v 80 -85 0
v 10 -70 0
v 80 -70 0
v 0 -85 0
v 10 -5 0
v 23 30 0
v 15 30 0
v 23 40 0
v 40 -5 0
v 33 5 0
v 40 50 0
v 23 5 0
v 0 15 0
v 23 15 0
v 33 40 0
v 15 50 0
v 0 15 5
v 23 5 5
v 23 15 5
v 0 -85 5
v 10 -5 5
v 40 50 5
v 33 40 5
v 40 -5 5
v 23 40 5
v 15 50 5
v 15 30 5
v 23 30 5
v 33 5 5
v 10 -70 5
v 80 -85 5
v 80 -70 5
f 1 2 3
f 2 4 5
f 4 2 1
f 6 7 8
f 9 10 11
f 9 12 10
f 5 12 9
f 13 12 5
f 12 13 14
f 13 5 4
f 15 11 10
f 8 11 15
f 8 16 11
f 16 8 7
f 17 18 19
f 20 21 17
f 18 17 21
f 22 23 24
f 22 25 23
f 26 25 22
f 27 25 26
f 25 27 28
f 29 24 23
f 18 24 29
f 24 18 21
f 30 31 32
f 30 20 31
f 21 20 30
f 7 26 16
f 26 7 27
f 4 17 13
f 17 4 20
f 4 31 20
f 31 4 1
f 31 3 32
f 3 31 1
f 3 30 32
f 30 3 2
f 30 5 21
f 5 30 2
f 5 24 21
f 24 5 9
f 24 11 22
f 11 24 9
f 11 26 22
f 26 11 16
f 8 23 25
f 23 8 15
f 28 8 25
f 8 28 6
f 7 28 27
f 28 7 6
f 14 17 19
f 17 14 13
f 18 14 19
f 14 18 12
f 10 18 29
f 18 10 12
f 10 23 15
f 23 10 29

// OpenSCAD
espessura_prateleira = 15; // milimetros

espessura_gancho = 5;
altura_gancho = 70;
        
module gancho() {
difference() {
    volume_positivo();
    prateleira();
}
}

module volume_positivo() {
    linear_extrude(espessura_gancho) {
        translate([15,20,0])
            square([25,30]);
        
        translate([0,-5,0])
            square([40, 30]);
        
        translate([0,-altura_gancho,0])
            square([10, altura_gancho]);
        
        espessura_apoio_gancho = 15;
        h = altura_gancho + espessura_apoio_gancho;
        
        translate([0,-h,0])
            square([80, espessura_apoio_gancho]);

    }
}
    
//prateleira
module prateleira() {
translate([-2,15,-1])
  linear_extrude(espessura_gancho + 2) {
    square([30, espessura_prateleira]);
    translate([25,-10])
        square([10, 35]);
  }
}

//prateleira();

gancho();
